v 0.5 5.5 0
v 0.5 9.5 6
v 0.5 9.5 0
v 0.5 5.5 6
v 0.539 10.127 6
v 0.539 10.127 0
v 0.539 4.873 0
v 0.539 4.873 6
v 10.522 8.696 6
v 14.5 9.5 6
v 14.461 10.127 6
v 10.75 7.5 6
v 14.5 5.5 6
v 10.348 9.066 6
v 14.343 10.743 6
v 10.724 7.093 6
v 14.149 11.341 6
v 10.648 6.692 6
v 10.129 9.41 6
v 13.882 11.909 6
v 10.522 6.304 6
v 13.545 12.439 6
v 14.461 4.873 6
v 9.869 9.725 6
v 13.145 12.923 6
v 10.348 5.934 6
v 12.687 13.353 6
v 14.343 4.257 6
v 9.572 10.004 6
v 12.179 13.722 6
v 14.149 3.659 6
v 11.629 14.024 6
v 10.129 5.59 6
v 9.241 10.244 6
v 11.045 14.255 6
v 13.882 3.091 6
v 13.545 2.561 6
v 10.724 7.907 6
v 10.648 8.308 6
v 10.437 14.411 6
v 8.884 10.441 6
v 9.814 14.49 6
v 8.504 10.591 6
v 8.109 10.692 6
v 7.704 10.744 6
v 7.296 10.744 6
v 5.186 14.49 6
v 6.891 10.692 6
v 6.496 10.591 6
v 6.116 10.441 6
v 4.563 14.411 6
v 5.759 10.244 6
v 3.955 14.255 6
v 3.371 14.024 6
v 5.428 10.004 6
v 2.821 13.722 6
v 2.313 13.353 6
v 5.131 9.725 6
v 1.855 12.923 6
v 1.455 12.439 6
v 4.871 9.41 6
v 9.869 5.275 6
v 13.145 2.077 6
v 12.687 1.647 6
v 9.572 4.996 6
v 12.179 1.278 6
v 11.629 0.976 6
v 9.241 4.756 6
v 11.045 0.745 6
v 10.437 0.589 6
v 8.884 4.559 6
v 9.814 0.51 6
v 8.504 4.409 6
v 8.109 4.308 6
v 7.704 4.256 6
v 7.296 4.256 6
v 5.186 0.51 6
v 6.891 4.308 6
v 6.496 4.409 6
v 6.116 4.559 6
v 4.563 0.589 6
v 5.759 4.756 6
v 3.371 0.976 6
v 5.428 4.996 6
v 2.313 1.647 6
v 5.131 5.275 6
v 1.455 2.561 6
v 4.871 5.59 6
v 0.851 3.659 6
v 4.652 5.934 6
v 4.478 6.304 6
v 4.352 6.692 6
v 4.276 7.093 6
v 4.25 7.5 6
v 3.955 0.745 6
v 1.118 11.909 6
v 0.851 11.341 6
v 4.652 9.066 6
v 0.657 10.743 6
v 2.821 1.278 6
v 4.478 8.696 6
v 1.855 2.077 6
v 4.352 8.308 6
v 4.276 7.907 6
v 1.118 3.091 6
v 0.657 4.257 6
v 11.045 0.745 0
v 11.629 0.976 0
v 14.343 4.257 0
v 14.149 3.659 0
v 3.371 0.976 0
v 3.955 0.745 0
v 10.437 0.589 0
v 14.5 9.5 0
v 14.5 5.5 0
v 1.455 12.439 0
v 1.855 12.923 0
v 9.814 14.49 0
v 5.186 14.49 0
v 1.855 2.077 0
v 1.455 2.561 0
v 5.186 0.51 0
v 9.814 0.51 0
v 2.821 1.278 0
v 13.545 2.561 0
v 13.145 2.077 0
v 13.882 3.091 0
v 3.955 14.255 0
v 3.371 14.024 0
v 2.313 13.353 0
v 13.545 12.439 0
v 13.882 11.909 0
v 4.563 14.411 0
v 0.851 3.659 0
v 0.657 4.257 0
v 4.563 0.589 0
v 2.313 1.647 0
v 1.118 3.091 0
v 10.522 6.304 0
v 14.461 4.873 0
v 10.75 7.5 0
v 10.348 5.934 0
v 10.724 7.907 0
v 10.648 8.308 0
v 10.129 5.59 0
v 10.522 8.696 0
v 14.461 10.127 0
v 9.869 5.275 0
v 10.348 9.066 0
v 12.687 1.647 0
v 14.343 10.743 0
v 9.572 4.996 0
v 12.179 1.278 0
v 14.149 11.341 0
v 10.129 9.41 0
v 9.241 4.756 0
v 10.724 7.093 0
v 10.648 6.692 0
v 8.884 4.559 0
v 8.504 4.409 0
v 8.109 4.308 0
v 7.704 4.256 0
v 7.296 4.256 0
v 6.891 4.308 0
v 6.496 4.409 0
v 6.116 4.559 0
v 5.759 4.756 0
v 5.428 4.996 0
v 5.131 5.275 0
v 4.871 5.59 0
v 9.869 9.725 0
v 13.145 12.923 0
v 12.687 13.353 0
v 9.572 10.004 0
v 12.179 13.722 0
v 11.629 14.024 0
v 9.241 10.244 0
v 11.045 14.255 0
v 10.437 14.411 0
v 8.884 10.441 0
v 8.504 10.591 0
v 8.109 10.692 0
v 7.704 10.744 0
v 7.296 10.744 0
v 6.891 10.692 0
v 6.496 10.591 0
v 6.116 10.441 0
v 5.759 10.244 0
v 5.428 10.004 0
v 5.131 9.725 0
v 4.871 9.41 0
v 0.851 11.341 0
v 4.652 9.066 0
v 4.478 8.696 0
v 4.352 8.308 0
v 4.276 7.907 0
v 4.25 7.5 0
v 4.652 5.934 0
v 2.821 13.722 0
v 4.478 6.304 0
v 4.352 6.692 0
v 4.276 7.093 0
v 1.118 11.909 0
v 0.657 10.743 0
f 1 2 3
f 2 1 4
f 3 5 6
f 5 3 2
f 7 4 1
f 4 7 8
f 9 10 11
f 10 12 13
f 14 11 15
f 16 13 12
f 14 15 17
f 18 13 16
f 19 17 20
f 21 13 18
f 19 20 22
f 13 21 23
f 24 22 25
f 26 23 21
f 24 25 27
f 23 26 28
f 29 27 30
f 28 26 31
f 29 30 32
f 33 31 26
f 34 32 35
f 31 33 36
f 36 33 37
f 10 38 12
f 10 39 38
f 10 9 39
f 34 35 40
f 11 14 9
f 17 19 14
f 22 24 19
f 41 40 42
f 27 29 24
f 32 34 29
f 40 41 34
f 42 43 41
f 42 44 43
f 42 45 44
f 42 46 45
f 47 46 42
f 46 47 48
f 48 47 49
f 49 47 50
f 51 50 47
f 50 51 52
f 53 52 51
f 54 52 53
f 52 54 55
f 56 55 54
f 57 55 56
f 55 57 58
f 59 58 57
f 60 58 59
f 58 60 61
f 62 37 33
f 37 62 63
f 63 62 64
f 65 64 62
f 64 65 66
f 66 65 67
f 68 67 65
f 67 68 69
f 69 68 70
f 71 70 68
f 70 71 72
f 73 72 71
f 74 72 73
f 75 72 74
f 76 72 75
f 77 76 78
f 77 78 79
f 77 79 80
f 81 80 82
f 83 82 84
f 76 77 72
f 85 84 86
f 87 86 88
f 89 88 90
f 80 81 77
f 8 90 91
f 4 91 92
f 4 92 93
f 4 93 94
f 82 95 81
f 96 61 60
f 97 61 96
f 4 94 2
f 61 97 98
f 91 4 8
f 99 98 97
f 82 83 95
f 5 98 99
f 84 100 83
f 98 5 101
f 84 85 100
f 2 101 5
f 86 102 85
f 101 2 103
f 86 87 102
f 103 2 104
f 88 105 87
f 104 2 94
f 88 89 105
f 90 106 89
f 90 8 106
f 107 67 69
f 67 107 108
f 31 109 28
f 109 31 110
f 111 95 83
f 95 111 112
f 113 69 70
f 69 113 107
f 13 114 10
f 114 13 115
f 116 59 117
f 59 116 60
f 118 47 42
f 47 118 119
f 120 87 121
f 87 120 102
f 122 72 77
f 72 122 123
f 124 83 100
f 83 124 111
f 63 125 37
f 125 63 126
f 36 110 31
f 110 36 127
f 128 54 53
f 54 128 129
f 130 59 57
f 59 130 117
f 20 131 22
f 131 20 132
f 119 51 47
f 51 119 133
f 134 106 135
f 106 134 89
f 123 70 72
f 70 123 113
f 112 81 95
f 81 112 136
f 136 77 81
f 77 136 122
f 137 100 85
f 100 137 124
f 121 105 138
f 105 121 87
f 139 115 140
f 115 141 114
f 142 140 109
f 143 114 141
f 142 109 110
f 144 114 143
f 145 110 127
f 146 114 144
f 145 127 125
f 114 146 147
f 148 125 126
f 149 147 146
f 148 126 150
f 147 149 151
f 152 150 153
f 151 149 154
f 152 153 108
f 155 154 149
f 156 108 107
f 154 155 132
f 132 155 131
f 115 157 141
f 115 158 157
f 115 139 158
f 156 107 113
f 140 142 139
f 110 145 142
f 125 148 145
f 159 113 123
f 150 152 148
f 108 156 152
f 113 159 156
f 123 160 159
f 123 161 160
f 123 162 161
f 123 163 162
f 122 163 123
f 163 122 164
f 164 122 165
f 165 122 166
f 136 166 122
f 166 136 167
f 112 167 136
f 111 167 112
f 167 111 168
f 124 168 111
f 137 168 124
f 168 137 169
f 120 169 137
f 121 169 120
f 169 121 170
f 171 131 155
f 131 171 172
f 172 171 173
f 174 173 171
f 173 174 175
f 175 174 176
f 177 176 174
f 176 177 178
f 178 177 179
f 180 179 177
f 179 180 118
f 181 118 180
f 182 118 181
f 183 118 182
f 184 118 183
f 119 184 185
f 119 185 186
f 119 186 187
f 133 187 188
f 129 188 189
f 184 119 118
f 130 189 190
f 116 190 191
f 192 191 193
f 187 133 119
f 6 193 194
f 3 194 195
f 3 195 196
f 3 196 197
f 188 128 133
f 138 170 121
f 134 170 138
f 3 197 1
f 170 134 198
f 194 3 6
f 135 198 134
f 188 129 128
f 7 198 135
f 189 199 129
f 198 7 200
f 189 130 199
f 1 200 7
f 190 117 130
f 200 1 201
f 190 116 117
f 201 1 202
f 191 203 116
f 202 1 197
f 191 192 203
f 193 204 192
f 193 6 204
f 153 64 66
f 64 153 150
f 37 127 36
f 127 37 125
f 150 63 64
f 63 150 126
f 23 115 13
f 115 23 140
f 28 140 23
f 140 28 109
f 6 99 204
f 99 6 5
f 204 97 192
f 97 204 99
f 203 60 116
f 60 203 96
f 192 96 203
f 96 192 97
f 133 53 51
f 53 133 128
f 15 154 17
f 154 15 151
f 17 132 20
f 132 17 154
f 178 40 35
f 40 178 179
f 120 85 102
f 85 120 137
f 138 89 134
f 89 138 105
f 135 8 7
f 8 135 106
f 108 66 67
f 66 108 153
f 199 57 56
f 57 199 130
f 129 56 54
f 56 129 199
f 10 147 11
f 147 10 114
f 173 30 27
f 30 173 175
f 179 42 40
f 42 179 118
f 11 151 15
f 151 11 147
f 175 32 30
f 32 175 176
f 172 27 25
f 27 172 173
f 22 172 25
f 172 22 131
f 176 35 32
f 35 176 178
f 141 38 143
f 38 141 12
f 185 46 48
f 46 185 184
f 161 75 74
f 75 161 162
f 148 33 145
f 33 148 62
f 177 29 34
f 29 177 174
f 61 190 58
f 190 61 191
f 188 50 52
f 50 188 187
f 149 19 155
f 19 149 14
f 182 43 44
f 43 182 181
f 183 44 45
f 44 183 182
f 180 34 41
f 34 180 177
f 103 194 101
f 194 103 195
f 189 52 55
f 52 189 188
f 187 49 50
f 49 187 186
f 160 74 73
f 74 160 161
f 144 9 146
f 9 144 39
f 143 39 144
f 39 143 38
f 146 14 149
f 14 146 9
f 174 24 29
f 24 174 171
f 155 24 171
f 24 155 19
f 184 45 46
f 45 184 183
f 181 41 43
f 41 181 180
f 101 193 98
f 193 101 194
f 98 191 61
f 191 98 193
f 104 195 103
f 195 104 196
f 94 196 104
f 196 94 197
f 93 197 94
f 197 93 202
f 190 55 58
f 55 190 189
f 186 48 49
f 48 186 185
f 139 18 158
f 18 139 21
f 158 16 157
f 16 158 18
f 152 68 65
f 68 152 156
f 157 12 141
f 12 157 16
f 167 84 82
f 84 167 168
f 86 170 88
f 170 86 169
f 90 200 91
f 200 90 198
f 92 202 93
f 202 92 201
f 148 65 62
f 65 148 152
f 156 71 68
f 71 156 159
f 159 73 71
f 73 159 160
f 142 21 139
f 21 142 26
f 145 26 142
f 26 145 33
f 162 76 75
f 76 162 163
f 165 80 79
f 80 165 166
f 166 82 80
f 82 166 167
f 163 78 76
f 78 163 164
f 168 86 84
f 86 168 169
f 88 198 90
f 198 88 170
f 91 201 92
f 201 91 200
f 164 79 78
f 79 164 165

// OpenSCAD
// Generated by SolidPython 1.1.3 on 2023-01-30 14:06:54
$fn = 50;


difference() {
	union() {
		translate(v = [7.5000000000, 7.5000000000, 0]) {
			rotate(a = [0, 0, 0]) {
				hull() {
					translate(v = [-2.0000000000, 2.0000000000, 0]) {
						rotate(a = [0, 0, 0]) {
							translate(v = [0, 0, 0]) {
								rotate(a = [0, 0, 0]) {
									cylinder(h = 6, r = 5);
								}
							}
						}
					}
					translate(v = [2.0000000000, 2.0000000000, 0]) {
						rotate(a = [0, 0, 0]) {
							translate(v = [0, 0, 0]) {
								rotate(a = [0, 0, 0]) {
									cylinder(h = 6, r = 5);
								}
							}
						}
					}
					translate(v = [-2.0000000000, -2.0000000000, 0]) {
						rotate(a = [0, 0, 0]) {
							translate(v = [0, 0, 0]) {
								rotate(a = [0, 0, 0]) {
									cylinder(h = 6, r = 5);
								}
							}
						}
					}
					translate(v = [2.0000000000, -2.0000000000, 0]) {
						rotate(a = [0, 0, 0]) {
							translate(v = [0, 0, 0]) {
								rotate(a = [0, 0, 0]) {
									cylinder(h = 6, r = 5);
								}
							}
						}
					}
				}
			}
		}
	}
	union() {
		translate(v = [7.5000000000, 7.5000000000, 0]) {
			rotate(a = [0, 0, 0]) {
				translate(v = [0, 0, -50]) {
					rotate(a = [0, 0, 0]) {
						cylinder(h = 100, r = 3.2500000000);
					}
				}
			}
		}
	}
}
/***********************************************
*********      SolidPython code:      **********
************************************************
 
from solid import *
import os
import subprocess

import oomB

import opsc_library_gen

mode = "laser"
#mode = "3d_print"

defined_objects = {}

radius_dict = {}
countersunk_dict = {}


def set_mode(m):
    global mode
    mode = m
    radius_dict['M6'] = 6.5/2
    radius_dict['M3'] = 3.3/2
    if mode == "laser":
        radius_dict['M6'] = 6/2
        radius_dict['M3'] = 3/2

    countersunk_dict['M3'] = {}
    countersunk_dict['M3']['little_rad'] = radius_dict['M3']
    countersunk_dict['M3']['big_rad'] = (5.5+0.6)/2
    if mode == "laser":
        countersunk_dict['M3']['big_rad'] = (4.75+0.6)/2
        countersunk_dict['M3']['little_rad'] = (4.75+0.6)/2

    countersunk_dict['M3']['height'] = 1.7


def opsc_make_object(filename, objects, save_type="none",resolution=50, layers = 1, tilediff = 200, mode="laser"):
    set_mode(mode)
    save_type = save_type.lower()
    os.makedirs(os.path.dirname(filename), exist_ok=True)
    final_object = opsc_get_object(objects)
    # Save the final object to the specified filename    
    scad_render_to_file(final_object, filename, file_header='$fn = %s;' % resolution, include_orig_code=True)
    if mode == "laser":
        filename_laser = filename.replace(".scad","-flat.scad")
        scad_render_to_file(getLaser(final_object, layers=layers, tilediff=tilediff), filename_laser, file_header='$fn = %s;' % resolution, include_orig_code=True)
        if save_type == "all":
            saveToAll(filename_laser)
        elif save_type == "dxf":
            saveToDxf(filename_laser)
    if save_type == "all":
        saveToAll(filename)
    elif save_type == "dxf":
        saveToDxf(filename)


def opsc_get_object(objects):
    # Create the solidpython objects
    positive_objects = [get_opsc_item(obj) for obj in objects if obj['type'] == 'positive']
    negative_objects = [get_opsc_item(obj) for obj in objects if obj['type'] == 'negative']
    # Union the positive objects
    positive_object = union()(*positive_objects)
    # Union the negative objects
    negative_object = union()(*negative_objects)
    # Create the final object by subtracting the negative objects from the positive objects
    return difference()(positive_object, negative_object)

def get_opsc_item(params):
    # A dictionary to map radius string values to numerical values
    #radius_dict = {'small': 5, 'medium': 10, 'large': 15}
    # An array of function names for basic shapes
    basic_shapes = ['cube', 'sphere', 'cylinder']
    
    # An array of function names for other shapes
    other_shapes = ['hole', 'slot', 'rounded_rectangle', 'countersunk']
    


    # Convert radius to r if present, and remove radius from the params dictionary
    if 'radius' in params:
        if isinstance(params['radius'], str):
            # Use the radius_dict to map the radius string value to a numerical value
            params['r'] = radius_dict[params['radius']]
        else:
            params['r'] = params['radius']
        del params['radius']
    

    # Check if the object type is a basic shape
    if params['shape'] in basic_shapes:
        # Remove shape and unexpected dictionary values
        allowed_keys = {'size', 'r', 'r1', 'r2', 'd', 'h', 'rw', 'rh', 'dw', 'dh'}
        shape_params = {k: v for k, v in params.items() if k in allowed_keys}

        # Call the corresponding function for the shape parameter, using ** notation to pass the shape_params dictionary as keyword arguments
        return get_opsc_transform(params,globals()[params['shape']](**shape_params))
    
    # If the object type is not a basic shape, check if it's a defined object or one of the other shapes
    elif params['shape'] in other_shapes:
        # Call the corresponding function for the shape parameter, passing the params dictionary as an argument
        p2 = copy.deepcopy(params)
        p2["pos"] = [0,0,0]
        return get_opsc_transform(params,globals()[params['shape']](p2))
    
    # If the object is not a basic shape or a defined object, try to import it from a .scad file
    else:
        obj = defined_objects[params['shape']]
        return get_opsc_transform(params,obj)

def get_opsc_transform(params, solid_obj):
    # Rotate the object based on the 'rot' field in the params dictionary, or the 'rotX', 'rotY', and 'rotZ' fields if 'rot' is not present
    rot = params.get('rot', [])
    if rot:
        rotX, rotY, rotZ = rot
    else:
        rotX = params.get('rotX', 0)
        rotY = params.get('rotY', 0)
        rotZ = params.get('rotZ', 0)
    solid_obj = rotate([rotX, rotY, rotZ])(solid_obj)

    # Translate the object based on the 'pos' field in the params dictionary, or the 'x', 'y', and 'z' fields if 'pos' is not present
    pos = params.get('pos', [])
    if pos:
        x, y, z = pos
    else:
        x = params.get('x', 0)
        y = params.get('y', 0)
        z = params.get('z', 0)
    solid_obj = translate([x, y, z])(solid_obj)
    return solid_obj


import random

def opsc_easy_array(type, shape, repeats, pos_start, shift_arr, **kwargs):
    for i in range(0,3):
        repeats.append(1)
        pos_start.append(0)
        shift_arr.append(0)
    return_objects = []

    for x in range(0,repeats[0]):
        for y in range(0,repeats[1]):
            for z in range(0,repeats[2]):
                return_objects.append(opsc_easy(type, shape, pos=[pos_start[0]+x*shift_arr[0],pos_start[1]+y*shift_arr[1],pos_start[2]+z*shift_arr[2]], **kwargs))
    return return_objects                



def opsc_easy(type, shape, **kwargs):
    obj = {
        'type': type,
        'shape': shape
    }
    for param in ['size', 'r', 'r1', 'r2', 'd', 'h', 'rw', 'rh', 'dw', 'dh', 'pos', 'x', 'y', 'z', 'rot', 'rotX', 'rotY', 'rotZ', "w"]:
        if param in kwargs:
            obj[param] = kwargs[param]
    return obj

def hole(params):
    p2 = copy.deepcopy(params)  
    # Check if the radius is a string and replace it with the corresponding value from the dictionary
    if isinstance(p2['r'], str):
        p2['r'] = radius_dict[p2['r']]
    
    # Set the height to 100 if not specified
    if 'h' not in p2:
        p2['h'] = 100
        p2["pos"] = [0,0,-50]
    p2["center"] = True
    # Create the cylinder object
    p2["shape"] = "cylinder"
    p2["type"] = "positive"

    return get_opsc_item(p2)

import copy

def countersunk(params):
    p2 = copy.deepcopy(params)
    counter_rad = p2['r']
    p2['r'] = radius_dict[p2['r']]
    hp = copy.deepcopy(p2)
    hp["type"] = "positive"
    hp["shape"] = "hole"
    del hp["rot"]
    hol = get_opsc_item(hp)
    
    cp = copy.deepcopy(p2)
    cp["h"] = countersunk_dict[counter_rad]["height"]
    cp["r2"] = countersunk_dict[counter_rad]["little_rad"]
    cp["r1"] = countersunk_dict[counter_rad]["big_rad"]
    del cp["r"]
    del cp["rot"]
    cp["type"] = "positive"
    cp["shape"] = "cylinder"
    cp["pos"] = [0,0,0]

    top = get_opsc_item(cp)
    return union()(hol,top)



def slot(params):  
    p2 = copy.deepcopy(params) 
    if isinstance(p2['r'], str):
        p2['r'] = radius_dict[p2['r']]
    p2["type"] = "positive"
    p2["shape"] = "hole"
    del p2["rot"]
    p2["pos"] = [0,0,0]
    left = copy.deepcopy(p2)
    right = copy.deepcopy(p2)
    left["pos"][0] = p2["w"] / 2 - p2["r"] 
    
    right["pos"][0] = -p2["w"] / 2 + p2["r"] 
    pass
    leftObj = get_opsc_item(left)
    rightObj = get_opsc_item(right)
    return hull()(leftObj, rightObj)

def rounded_rectangle(params):   
    p2 = copy.deepcopy(params) 
    p2["h"] = p2["size"][2]
    p2["pos"] = p2.get("pos", [0, 0, 0]) 
    p2["type"] = "positive"
    p2["shape"] = "hole"
    p2["pos"] = [0,0,0]
    
    if 'rot' in p2:
        del p2["rot"]   
    if 'r' not in p2:
        p2["r"] = 5 
    tl = copy.deepcopy(p2)
    tr = copy.deepcopy(p2)
    bl = copy.deepcopy(p2)
    br = copy.deepcopy(p2)
    tl["pos"][0] = -(p2["size"][0] - p2["r"]*2)/2
    tl["pos"][1] = (p2["size"][1] - p2["r"]*2)/2
    tr["pos"][0] = (p2["size"][0] - p2["r"]*2)/2
    tr["pos"][1] = (p2["size"][1] - p2["r"]*2)/2
    bl["pos"][0] = -(p2["size"][0] - p2["r"]*2)/2
    bl["pos"][1] = -(p2["size"][1] - p2["r"]*2)/2
    br["pos"][0] = (p2["size"][0] - p2["r"]*2)/2
    br["pos"][1] = -(p2["size"][1] - p2["r"]*2)/2
    del tl["size"]
    del tr["size"]
    del bl["size"]
    del br["size"]
    tlo = get_opsc_item(tl)
    tro = get_opsc_item(tr)
    blo = get_opsc_item(bl)
    bro = get_opsc_item(br)    
    return hull()(tlo, tro, blo, bro)



def import_scad_object(filename):
    # Import the .scad file and convert it to a solidpython object
    #filename = "parts"
    obj = import_scad(filename)
    return obj.main()
    


import os
import solid as solidpython

# A dictionary to store the defined objects


def load_scad_objects():
    opsc_library_gen.gen_library(defined_objects)

import random

def test(num_objects):
    objects = []
    for i in range(num_objects):
        # Choose a random shape
        #shape = random.choice(['cube', 'sphere', 'cylinder', 'hole', 'slot', "rounded_rectangle"])
        shape = random.choice(["rounded_rectangle"])

        # Choose a random type
        type = random.choice(['positive', 'negative'])
        
        # Create an empty object dictionary
        obj = {'shape': shape, 'type': type}
        
        # Set shape-specific parameters
        if obj['shape'] in ['cube']:
            obj['size'] =  [random.uniform(5, 15), random.uniform(5, 15), random.uniform(5, 15)]
        if obj['shape'] in ['rounded_rectangle']:
            obj['size'] =  [random.uniform(5, 15), random.uniform(5, 15), random.uniform(5, 15)]
            obj['r'] = random.uniform(0.5, 5)
        elif obj['shape'] == 'sphere':
            obj['r'] = random.uniform(5, 15)
        elif obj['shape'] in ['cylinder', 'hole']:
            obj['r'] = random.uniform(0.5, 5)
            obj['h'] = random.uniform(5, 15)
        elif obj['shape'] == 'slot':
            obj['r'] = random.uniform(0.5, 5)
            obj['h'] = random.uniform(5, 15)
            obj['w'] = random.uniform(5, 15)
        
        # Set a random position and rotation
        obj['pos'] = [random.uniform(-20, 20), random.uniform(-20, 20), random.uniform(-20, 20)]
        obj['rot'] = [random.uniform(-180, 180), random.uniform(-180, 180), random.uniform(-180, 180)]
        
        # Add the object to the list
        objects.append(obj)
    return objects

####### old file saving
def saveToAll(fileIn):
    saveToDxf(fileIn)
    saveToPng(fileIn)
    saveToStl(fileIn)
    saveToSvg(fileIn)

def saveToDxf(fileIn, fileOut="", copy_to_laser=True):
    if fileOut == "":
        fileOut = fileIn.replace(".scad",".dxf")
    saveToFile(fileIn, fileOut)


    
def saveToPng(fileIn, fileOut="",extra="--render"):
    if fileOut == "":
        fileOut = fileIn.replace(".scad",".png")
    saveToFile(fileIn, fileOut)

def saveToStl(fileIn, fileOut=""):
    if fileOut == "":
        fileOut = fileIn.replace(".scad",".stl")
    saveToFile(fileIn, fileOut)
    
def saveToSvg(fileIn, fileOut=""):
    if fileOut == "":
        fileOut = fileIn.replace(".scad",".svg")
    saveToFile(fileIn, fileOut)

def saveToFile(fileIn, fileOut,extra=""):
    #extra = extra + " --colorscheme Tomorrow"

    launchStr = 'openscad -o "' + fileOut + '"' + extra + ' "' + fileIn + '"'
    if ".png" in fileOut:
        launchStr = launchStr + " --render"
    print("            saveToFile launch string: " + launchStr)
    subprocess.run(launchStr)
    x=0

def getLaser(final_object,start=1.5,layers=1,thickness=3,tilediff=200):
        rv= []

        for x in range(layers):
            rv.append(translate([0,x*tilediff,0])(
                    projection()(
                        intersection()(translate([-500,-500,start+x*thickness])(cube(size=[1000,1000,0.1])),
                            final_object
                        )
                    )
            )
            )
            
        return union()(rv)

set_mode("laser")
load_scad_objects() 
 
************************************************/
